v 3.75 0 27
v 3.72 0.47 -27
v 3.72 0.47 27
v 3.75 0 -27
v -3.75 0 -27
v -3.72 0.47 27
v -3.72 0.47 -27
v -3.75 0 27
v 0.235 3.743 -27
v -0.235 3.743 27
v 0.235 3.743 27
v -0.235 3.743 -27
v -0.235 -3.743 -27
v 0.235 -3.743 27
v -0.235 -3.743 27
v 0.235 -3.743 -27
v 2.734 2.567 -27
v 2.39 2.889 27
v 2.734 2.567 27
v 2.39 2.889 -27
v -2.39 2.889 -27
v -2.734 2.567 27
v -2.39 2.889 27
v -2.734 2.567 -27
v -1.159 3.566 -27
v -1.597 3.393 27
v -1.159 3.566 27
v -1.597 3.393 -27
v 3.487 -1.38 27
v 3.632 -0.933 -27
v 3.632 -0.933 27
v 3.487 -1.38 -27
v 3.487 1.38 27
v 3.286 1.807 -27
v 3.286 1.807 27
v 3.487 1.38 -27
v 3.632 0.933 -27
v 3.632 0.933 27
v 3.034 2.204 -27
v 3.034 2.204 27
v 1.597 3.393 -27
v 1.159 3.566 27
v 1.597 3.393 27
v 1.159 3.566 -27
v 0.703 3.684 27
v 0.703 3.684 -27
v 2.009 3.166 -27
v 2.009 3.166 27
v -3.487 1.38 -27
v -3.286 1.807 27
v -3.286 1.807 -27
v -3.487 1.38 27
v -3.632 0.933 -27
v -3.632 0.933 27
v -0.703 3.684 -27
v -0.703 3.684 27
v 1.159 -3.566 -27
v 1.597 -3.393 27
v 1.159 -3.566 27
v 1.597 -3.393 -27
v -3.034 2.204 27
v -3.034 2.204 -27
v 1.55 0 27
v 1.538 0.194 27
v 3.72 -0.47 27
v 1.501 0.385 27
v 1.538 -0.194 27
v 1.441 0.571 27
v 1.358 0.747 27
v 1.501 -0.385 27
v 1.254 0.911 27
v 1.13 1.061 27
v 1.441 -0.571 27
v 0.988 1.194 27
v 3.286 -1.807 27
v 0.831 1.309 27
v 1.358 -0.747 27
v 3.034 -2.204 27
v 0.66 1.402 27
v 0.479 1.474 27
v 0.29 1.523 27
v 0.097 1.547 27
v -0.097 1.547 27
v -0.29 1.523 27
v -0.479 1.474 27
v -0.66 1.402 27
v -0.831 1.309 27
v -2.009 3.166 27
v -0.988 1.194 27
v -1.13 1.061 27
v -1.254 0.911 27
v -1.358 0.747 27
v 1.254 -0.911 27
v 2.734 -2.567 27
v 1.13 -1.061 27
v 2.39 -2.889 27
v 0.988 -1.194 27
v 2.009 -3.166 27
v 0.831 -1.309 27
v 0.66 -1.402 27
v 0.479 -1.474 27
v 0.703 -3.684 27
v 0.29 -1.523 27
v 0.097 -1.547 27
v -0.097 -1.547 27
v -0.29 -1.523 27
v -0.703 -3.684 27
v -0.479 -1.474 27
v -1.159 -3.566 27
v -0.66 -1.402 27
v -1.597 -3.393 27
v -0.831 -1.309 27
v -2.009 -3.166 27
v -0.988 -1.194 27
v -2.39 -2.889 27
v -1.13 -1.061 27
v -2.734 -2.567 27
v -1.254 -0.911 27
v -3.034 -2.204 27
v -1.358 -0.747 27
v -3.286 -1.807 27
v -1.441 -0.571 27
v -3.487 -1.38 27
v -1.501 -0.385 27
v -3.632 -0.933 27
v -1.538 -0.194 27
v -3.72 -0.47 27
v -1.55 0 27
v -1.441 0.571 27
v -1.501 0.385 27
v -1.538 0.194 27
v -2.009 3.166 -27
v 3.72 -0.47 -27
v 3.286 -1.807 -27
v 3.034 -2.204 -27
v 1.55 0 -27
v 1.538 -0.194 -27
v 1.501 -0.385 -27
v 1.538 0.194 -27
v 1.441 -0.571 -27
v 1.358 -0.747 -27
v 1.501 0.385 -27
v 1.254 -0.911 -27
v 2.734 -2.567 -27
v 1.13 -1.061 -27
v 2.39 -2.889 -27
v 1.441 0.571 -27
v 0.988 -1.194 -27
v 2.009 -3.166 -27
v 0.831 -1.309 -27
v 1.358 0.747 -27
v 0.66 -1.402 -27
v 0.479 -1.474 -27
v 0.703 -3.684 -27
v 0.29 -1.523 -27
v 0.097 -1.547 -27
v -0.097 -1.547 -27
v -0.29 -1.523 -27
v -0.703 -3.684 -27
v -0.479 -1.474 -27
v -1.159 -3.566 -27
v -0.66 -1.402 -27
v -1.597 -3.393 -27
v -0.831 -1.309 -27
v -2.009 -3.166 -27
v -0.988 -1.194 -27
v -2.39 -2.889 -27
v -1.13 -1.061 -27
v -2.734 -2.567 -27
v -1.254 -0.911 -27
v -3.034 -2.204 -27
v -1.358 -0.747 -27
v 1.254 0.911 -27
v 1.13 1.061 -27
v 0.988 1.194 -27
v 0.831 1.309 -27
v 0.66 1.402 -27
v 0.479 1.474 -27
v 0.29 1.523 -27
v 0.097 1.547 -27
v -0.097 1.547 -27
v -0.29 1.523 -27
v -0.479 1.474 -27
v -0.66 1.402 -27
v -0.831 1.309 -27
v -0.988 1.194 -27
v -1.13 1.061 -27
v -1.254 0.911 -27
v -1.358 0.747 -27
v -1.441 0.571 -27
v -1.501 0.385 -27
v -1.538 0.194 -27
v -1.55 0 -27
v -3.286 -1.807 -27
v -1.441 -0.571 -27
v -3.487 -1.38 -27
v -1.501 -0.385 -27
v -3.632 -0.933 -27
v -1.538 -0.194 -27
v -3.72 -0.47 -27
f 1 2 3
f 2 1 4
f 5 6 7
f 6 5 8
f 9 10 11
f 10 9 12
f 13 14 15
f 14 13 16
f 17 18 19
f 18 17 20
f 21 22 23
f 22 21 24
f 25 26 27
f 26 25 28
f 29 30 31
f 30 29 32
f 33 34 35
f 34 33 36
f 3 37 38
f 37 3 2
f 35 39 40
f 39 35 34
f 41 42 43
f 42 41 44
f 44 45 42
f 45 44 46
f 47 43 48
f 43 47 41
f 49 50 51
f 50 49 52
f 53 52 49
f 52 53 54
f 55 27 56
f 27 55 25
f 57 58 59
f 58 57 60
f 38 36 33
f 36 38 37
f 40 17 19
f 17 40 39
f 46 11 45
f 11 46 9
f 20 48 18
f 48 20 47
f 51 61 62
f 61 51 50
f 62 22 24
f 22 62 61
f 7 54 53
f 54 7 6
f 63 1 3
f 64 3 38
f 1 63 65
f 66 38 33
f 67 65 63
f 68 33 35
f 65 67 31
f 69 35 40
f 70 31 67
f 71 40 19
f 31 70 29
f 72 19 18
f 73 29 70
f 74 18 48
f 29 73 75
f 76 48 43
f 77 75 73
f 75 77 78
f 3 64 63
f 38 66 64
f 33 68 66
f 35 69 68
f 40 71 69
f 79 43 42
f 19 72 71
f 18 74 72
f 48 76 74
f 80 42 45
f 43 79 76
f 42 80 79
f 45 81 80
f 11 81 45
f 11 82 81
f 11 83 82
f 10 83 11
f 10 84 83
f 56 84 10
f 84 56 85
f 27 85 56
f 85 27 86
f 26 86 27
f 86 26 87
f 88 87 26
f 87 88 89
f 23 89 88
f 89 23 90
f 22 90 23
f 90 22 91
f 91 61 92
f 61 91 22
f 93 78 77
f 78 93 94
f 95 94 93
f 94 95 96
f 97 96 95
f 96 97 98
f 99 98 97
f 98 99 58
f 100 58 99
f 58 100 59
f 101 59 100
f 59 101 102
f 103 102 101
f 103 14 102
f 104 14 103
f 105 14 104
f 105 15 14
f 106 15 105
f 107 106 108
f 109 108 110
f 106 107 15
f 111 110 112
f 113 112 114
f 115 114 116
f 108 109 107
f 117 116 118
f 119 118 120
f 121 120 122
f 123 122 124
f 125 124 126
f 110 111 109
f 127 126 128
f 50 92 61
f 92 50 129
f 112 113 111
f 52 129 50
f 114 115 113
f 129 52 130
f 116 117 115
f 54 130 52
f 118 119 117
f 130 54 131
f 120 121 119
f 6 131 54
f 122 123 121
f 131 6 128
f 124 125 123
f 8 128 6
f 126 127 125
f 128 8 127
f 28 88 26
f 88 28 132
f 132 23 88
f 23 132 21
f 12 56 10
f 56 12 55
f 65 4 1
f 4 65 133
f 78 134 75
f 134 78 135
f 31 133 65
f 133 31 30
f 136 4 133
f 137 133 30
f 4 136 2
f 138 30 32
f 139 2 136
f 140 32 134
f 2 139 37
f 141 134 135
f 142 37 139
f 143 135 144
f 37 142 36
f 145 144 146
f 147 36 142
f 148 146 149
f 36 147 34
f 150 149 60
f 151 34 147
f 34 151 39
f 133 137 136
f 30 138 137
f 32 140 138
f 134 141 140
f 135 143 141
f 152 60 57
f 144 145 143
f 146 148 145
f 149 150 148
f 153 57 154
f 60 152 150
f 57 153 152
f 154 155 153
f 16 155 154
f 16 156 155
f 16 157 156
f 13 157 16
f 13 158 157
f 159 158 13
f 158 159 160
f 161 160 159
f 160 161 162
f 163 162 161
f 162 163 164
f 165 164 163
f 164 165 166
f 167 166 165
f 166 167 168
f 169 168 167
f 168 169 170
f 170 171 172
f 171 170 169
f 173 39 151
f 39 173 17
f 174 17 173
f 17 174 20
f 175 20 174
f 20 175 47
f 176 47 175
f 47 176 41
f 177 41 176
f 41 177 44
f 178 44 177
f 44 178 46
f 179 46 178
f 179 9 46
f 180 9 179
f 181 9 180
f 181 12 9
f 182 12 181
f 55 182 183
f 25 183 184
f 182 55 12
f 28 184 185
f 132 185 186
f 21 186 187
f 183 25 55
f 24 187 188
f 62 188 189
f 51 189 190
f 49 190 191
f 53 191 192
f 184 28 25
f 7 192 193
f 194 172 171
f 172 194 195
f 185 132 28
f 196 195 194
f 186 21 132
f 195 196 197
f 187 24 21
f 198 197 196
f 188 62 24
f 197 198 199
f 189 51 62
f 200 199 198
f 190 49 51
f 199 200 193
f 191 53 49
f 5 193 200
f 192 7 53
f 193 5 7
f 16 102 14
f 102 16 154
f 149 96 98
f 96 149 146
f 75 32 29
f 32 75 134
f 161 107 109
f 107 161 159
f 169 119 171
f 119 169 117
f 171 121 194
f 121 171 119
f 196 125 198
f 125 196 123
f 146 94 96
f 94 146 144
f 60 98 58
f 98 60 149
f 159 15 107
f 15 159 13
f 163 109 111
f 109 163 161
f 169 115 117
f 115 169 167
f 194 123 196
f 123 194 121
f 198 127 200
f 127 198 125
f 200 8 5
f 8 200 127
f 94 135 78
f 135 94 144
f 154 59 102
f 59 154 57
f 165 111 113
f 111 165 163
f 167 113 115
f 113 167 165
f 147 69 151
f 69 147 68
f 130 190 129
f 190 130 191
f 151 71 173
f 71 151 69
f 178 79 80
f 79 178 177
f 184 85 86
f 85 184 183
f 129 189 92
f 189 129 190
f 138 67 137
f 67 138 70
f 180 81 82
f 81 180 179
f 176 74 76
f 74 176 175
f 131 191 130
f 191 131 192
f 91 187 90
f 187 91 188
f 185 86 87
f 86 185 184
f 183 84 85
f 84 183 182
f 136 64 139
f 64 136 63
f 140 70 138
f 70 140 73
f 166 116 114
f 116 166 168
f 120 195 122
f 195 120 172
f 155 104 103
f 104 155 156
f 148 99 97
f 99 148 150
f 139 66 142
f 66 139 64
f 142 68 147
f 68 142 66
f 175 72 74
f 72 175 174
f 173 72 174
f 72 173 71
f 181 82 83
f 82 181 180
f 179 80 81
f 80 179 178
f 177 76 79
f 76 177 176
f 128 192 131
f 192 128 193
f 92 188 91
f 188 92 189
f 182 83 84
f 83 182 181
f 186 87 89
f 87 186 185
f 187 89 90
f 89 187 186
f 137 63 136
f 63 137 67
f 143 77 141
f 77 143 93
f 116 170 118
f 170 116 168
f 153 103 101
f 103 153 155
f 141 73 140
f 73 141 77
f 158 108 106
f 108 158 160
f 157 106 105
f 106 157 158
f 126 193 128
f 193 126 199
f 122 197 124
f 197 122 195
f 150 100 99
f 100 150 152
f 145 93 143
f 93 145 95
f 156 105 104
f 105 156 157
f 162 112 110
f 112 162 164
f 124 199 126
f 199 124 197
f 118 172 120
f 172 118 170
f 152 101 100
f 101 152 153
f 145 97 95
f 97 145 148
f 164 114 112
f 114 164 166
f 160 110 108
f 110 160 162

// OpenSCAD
$fn = 50;


difference() {
	union() {
		translate(v = [0, 0, -27.0000000000]) {
			cylinder(h = 54, r = 3.7500000000);
		}
	}
	union() {
		translate(v = [0, 0, -100.0000000000]) {
			cylinder(h = 200, r = 1.5500000000);
		}
	}
}
